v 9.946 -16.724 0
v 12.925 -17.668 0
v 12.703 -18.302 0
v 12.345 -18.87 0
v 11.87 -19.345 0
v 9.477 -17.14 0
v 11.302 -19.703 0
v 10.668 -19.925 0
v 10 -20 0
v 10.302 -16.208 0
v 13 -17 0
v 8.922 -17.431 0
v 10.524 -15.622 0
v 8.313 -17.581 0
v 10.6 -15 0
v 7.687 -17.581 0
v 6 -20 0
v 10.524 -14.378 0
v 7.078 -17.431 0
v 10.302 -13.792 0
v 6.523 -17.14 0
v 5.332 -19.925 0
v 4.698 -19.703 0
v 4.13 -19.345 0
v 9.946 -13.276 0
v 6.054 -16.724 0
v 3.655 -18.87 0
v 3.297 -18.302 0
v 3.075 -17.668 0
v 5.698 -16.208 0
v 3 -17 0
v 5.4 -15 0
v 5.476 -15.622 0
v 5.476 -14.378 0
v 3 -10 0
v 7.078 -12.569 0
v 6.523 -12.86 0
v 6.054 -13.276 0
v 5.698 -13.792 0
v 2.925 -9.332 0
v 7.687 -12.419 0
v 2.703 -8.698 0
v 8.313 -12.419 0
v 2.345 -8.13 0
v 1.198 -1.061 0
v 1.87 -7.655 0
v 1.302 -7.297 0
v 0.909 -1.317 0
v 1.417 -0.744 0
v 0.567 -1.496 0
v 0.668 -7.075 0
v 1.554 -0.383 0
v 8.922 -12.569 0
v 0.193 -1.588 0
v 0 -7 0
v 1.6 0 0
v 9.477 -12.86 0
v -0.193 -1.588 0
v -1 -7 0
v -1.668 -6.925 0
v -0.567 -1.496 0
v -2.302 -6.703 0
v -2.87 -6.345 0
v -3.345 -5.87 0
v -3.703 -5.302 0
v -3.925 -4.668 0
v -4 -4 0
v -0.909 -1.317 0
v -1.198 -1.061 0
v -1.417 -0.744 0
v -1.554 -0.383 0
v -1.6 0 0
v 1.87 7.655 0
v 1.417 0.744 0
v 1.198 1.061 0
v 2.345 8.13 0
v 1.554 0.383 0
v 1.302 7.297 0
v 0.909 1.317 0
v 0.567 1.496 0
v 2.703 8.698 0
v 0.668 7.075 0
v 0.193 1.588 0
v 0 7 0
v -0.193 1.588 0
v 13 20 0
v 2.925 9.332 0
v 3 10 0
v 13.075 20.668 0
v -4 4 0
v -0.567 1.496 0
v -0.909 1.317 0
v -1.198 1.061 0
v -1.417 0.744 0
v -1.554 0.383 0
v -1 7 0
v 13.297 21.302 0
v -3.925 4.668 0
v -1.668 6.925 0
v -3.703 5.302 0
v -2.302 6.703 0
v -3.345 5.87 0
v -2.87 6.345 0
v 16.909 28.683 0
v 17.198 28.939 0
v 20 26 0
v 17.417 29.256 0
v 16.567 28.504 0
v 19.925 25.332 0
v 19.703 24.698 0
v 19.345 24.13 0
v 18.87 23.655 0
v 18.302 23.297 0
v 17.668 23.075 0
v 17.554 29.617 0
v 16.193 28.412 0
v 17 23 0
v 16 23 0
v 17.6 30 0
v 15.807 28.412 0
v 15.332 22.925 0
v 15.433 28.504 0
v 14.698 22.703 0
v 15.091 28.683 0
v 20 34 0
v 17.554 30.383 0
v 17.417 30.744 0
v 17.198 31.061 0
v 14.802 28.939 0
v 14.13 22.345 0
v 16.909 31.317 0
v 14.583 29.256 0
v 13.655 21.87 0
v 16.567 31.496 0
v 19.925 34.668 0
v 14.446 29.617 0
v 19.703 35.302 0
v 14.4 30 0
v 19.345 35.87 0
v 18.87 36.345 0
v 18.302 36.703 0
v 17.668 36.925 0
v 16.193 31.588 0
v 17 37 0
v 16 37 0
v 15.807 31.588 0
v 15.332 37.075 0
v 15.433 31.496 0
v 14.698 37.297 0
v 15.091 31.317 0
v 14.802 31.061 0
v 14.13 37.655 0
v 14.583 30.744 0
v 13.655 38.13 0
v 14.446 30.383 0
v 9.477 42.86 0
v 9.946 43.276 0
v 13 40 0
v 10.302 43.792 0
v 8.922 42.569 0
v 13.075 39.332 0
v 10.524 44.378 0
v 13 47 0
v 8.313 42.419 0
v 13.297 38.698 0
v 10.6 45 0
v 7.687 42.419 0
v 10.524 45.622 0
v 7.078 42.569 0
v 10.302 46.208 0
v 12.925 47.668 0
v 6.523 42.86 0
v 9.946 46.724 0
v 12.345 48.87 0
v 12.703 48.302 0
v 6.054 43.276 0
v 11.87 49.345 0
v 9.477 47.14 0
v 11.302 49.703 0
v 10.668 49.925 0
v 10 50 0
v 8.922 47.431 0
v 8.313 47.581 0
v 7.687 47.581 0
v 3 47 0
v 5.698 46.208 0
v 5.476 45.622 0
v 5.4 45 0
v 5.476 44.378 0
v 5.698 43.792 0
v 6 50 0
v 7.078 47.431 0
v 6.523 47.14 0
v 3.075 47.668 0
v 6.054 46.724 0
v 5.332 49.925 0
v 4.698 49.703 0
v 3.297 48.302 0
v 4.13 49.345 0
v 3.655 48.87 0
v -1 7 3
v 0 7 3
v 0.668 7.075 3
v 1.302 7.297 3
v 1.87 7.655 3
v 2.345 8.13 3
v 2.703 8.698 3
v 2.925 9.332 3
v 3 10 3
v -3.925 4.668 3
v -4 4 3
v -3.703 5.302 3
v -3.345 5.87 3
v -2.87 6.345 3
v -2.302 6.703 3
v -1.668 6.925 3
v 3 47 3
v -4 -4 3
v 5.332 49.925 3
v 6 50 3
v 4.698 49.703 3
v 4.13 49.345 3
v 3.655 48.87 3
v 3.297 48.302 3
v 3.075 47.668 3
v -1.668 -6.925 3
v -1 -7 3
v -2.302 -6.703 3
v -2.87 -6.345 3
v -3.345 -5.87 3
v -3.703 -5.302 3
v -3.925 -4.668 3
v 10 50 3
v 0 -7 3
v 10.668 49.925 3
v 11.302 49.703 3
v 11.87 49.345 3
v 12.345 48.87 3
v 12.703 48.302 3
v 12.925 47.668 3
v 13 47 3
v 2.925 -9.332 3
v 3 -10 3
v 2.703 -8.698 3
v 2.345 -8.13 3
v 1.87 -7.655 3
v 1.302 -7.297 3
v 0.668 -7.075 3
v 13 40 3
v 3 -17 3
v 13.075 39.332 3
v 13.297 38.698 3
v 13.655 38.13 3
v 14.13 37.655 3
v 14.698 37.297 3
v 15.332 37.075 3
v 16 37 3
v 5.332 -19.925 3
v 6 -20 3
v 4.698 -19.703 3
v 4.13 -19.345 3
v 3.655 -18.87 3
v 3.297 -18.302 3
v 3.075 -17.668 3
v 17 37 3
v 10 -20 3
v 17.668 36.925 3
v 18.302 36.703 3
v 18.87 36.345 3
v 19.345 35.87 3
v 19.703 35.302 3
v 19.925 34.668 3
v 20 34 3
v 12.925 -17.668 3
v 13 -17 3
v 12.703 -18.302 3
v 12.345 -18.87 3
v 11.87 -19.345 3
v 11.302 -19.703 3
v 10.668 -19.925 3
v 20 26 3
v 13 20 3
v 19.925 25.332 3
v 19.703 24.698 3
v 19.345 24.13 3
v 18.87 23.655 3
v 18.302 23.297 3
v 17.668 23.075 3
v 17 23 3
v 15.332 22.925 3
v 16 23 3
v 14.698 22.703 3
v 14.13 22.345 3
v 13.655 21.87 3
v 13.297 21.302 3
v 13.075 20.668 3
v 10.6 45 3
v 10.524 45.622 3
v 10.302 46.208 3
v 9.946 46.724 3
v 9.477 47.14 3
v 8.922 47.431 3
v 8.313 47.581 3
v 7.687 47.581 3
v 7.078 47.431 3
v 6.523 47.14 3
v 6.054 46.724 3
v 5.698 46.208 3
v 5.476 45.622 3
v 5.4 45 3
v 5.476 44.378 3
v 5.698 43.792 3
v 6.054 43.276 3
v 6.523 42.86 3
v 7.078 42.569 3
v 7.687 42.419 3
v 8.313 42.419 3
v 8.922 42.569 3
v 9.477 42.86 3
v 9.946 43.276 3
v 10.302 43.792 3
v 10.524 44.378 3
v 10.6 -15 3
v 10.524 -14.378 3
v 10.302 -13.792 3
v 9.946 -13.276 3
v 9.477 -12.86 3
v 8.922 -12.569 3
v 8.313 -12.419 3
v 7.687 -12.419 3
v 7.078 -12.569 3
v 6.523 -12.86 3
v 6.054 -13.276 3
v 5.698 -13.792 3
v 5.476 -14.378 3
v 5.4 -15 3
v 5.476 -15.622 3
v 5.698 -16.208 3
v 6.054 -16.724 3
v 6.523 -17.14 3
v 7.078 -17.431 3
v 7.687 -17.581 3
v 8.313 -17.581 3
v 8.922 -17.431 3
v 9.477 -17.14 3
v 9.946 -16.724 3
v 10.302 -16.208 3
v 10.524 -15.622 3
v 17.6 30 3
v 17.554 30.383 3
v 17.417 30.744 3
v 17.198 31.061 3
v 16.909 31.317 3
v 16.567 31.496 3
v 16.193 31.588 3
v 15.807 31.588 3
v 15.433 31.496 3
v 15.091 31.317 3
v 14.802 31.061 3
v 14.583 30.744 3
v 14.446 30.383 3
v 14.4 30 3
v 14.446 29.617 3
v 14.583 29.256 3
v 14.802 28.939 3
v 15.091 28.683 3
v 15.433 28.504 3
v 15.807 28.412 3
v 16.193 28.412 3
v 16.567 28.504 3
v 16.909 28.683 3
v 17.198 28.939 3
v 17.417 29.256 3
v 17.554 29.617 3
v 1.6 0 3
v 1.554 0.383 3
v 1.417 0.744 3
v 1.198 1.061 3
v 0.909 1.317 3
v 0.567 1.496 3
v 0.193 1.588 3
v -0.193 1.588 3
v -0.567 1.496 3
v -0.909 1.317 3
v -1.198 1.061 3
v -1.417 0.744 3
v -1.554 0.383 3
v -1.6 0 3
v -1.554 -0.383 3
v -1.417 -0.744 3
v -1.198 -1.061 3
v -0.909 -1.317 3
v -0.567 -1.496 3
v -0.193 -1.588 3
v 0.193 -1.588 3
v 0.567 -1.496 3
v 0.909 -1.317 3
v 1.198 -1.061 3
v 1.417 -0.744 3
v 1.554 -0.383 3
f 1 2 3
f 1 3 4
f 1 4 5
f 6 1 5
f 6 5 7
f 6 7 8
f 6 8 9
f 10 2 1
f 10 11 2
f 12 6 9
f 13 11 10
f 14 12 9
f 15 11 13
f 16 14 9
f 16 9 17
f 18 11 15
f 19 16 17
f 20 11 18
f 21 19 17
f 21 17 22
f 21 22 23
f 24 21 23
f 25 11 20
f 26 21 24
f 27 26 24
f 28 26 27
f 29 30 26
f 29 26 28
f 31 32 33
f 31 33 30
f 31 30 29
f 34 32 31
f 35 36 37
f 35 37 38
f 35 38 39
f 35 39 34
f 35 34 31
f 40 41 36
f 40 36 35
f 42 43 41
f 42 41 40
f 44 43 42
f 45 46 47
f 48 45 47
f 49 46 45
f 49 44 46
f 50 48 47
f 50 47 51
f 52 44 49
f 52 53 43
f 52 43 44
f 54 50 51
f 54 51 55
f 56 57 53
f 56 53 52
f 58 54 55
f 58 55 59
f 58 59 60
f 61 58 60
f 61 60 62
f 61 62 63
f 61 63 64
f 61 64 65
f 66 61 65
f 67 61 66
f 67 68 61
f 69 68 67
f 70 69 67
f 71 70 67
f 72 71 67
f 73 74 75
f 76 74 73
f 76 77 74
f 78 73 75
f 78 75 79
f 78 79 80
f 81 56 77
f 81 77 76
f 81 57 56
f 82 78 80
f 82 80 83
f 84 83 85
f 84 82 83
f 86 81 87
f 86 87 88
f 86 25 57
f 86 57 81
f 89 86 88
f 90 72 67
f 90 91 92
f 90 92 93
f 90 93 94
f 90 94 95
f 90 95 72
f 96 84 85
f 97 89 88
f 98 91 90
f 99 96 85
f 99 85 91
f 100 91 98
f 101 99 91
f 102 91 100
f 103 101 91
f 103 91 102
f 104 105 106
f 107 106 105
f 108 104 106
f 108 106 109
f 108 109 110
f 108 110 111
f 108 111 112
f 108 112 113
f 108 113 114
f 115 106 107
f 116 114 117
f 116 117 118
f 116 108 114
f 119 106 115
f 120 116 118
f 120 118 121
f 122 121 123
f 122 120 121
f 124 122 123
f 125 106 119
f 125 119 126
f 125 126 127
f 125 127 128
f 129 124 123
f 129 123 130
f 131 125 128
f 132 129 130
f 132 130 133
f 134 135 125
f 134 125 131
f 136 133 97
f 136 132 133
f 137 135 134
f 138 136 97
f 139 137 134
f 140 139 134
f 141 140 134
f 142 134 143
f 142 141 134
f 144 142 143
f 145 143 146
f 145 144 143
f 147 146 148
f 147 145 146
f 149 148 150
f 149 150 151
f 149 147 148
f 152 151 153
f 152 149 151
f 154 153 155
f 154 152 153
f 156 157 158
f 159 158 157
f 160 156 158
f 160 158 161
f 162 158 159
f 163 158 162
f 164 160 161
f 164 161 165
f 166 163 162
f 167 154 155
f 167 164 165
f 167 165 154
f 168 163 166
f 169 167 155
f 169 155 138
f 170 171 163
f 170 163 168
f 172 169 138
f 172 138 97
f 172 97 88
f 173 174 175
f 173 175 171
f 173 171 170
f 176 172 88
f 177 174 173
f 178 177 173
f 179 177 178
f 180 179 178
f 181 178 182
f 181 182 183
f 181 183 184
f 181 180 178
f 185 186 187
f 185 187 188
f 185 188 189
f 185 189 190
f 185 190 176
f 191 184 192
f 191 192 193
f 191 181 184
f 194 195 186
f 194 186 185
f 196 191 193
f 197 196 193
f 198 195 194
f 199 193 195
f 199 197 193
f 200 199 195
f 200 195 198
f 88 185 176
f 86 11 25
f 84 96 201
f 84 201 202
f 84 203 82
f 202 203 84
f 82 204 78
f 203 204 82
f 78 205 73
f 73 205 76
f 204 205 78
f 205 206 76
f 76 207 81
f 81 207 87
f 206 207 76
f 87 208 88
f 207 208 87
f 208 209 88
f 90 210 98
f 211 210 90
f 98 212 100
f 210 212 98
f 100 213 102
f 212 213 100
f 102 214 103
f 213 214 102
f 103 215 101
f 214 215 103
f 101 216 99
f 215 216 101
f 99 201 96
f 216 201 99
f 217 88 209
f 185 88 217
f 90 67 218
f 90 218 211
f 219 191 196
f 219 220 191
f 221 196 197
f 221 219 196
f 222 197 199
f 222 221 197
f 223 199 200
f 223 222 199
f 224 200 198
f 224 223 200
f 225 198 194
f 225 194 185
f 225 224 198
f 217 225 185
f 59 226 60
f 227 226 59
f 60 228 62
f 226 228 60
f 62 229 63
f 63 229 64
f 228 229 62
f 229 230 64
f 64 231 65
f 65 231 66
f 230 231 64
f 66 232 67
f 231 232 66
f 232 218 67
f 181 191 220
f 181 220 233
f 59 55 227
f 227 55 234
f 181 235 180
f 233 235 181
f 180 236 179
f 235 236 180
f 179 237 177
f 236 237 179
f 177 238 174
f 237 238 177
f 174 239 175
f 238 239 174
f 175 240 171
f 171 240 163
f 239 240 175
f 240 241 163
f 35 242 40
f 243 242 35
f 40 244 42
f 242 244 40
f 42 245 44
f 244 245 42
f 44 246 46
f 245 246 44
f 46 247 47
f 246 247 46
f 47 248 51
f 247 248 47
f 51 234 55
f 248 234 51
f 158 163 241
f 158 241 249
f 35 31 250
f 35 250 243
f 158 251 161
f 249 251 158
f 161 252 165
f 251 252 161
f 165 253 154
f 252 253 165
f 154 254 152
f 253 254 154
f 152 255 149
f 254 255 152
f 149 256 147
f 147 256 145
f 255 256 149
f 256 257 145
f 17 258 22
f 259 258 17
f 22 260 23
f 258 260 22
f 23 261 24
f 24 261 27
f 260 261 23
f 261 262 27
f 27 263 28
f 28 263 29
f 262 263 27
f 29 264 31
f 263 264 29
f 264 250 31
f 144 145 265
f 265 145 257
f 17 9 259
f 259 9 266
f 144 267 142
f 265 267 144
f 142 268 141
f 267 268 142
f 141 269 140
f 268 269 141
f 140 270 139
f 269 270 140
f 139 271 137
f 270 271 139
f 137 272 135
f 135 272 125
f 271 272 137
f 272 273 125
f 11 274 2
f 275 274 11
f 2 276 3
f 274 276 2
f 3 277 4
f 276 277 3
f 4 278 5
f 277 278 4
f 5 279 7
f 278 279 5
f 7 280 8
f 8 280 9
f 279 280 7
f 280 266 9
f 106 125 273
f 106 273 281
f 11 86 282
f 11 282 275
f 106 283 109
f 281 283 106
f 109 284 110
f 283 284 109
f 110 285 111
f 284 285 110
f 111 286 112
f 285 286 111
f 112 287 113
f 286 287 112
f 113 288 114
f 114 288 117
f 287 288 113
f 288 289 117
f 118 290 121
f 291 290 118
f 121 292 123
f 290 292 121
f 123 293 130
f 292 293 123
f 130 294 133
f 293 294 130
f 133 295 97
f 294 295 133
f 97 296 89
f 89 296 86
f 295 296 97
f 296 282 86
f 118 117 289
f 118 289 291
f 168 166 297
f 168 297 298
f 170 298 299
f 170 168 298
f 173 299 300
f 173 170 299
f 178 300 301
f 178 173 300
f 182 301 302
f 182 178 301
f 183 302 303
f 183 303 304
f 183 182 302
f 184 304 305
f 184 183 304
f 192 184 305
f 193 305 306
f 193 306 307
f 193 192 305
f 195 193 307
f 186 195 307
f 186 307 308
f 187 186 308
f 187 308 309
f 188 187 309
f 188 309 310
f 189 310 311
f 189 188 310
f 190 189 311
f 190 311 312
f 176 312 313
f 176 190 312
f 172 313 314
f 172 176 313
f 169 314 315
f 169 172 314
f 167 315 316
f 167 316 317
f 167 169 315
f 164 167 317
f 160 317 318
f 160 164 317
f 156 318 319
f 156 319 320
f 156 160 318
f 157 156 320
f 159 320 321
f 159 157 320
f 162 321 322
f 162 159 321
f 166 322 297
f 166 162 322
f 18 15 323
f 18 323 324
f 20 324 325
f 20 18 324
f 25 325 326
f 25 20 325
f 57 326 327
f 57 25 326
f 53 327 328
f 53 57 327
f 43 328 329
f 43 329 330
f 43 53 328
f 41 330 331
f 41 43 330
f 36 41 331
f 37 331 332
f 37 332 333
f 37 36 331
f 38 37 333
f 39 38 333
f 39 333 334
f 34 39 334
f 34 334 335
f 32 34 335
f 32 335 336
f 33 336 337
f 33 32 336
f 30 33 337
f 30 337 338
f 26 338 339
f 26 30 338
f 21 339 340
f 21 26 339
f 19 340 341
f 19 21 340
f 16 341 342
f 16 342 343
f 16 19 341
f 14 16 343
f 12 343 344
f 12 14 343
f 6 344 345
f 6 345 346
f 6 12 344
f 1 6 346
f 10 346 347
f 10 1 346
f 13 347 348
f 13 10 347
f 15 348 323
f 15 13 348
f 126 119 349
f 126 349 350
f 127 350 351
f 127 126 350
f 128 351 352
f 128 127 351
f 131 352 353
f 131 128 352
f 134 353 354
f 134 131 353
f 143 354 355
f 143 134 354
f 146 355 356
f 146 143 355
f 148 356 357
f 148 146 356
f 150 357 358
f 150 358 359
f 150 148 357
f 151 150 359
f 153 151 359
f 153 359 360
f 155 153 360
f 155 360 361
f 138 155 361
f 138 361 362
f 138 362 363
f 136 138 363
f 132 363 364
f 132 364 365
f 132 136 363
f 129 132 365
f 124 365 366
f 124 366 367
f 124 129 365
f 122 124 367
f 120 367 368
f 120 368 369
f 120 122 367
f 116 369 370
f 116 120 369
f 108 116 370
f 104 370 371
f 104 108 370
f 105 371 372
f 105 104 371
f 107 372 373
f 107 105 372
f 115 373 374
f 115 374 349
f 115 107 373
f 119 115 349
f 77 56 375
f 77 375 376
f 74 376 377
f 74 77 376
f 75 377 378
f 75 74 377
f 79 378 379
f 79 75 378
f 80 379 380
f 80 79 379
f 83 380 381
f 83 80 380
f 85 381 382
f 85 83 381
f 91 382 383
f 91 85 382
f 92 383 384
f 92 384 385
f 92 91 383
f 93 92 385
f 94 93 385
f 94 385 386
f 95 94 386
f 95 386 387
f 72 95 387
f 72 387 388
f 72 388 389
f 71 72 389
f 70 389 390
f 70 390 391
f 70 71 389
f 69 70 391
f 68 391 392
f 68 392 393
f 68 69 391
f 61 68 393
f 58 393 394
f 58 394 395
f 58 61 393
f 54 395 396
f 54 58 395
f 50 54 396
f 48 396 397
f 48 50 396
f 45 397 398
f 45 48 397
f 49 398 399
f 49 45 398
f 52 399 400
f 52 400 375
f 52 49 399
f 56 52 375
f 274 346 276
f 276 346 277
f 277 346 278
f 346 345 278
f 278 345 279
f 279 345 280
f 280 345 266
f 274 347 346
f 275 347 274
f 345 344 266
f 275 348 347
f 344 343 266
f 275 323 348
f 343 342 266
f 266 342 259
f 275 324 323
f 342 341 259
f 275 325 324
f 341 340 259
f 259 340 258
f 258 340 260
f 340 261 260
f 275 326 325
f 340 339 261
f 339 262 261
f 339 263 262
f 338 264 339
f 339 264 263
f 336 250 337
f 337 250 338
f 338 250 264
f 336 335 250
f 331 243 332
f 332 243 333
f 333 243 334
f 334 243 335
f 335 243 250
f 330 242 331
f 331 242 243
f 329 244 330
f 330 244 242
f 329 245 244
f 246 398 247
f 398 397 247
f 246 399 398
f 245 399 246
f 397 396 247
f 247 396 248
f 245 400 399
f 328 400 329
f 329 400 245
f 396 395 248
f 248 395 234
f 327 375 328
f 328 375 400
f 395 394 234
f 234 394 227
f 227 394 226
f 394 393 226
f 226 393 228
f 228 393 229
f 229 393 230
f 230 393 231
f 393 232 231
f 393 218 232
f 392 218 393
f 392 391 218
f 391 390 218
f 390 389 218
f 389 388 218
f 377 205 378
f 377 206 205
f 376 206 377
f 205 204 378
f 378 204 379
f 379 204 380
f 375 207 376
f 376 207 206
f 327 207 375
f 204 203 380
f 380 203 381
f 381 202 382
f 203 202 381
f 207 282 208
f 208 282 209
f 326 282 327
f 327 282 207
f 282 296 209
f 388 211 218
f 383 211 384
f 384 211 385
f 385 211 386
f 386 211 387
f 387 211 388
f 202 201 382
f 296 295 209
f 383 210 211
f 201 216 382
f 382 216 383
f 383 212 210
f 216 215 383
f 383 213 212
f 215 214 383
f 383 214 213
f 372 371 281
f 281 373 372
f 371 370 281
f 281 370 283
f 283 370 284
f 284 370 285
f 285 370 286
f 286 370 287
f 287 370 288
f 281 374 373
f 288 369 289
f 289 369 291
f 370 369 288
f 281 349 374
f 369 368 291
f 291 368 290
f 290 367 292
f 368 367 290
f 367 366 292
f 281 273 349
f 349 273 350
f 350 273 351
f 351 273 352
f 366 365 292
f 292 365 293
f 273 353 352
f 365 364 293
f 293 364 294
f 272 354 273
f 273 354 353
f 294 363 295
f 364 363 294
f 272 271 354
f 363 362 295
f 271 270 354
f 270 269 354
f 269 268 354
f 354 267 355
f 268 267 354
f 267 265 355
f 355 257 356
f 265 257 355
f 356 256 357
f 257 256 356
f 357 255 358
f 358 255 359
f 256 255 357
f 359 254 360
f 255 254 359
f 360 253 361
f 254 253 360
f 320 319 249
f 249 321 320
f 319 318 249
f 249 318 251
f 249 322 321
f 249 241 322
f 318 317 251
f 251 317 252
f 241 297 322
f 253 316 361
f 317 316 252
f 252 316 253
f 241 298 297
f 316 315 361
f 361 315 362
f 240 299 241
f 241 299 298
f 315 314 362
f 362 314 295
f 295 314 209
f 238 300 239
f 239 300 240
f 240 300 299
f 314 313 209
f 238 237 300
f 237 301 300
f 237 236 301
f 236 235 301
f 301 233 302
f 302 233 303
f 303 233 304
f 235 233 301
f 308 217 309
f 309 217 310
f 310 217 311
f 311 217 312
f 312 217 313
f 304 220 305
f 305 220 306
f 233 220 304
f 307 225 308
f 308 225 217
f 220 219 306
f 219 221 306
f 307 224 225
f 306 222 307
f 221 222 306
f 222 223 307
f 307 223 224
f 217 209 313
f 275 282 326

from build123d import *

# Parameters (mm, degrees)
SKETCH_R    = 1.6
SKETCH_R_2  = 2.6
PAD_DEPTH   = 3
FILLET_R    = 3
FILLET001_R = 3
FILLET002_R = 3
FILLET003_R = 3
FILLET004_R = 3


with BuildPart() as part:
    # Sketch → Pad (new body)
    with BuildSketch(Plane.XY):
        Polygon((3, 50), (13, 50), (13, 37), (20, 37), (20, 23), (13, 23), (13, -20), (3, -20), (3, -7), (-4, -7), (-4, 7), (3, 7), align=None)
        Circle(SKETCH_R, mode=Mode.SUBTRACT)
        with Locations((16, 30)):
            Circle(SKETCH_R, mode=Mode.SUBTRACT)
        with Locations((8, 45)):
            Circle(SKETCH_R_2, mode=Mode.SUBTRACT)
        with Locations((8, -15)):
            Circle(SKETCH_R_2, mode=Mode.SUBTRACT)
    extrude(amount=PAD_DEPTH)

    # Fillet
    fillet_edges = [part.edges().sort_by_distance(p)[0] for p in [
        (13, -20, 1.5),
        (3, -20, 1.5),
        (20, 23, 1.5),
        (20, 37, 1.5),
        (-4, -7, 1.5),
        (-4, 7, 1.5),
        (3, 50, 1.5),
        (13, 50, 1.5),
    ]]
    fillet(fillet_edges, radius=FILLET_R)

    # Fillet001
    fillet001_edges = [part.edges().sort_by_distance(p)[0] for p in [
        (13, 37, 1.5),
    ]]
    fillet(fillet001_edges, radius=FILLET001_R)

    # Fillet002
    fillet002_edges = [part.edges().sort_by_distance(p)[0] for p in [
        (13, 23, 1.5),
    ]]
    fillet(fillet002_edges, radius=FILLET002_R)

    # Fillet003
    fillet003_edges = [part.edges().sort_by_distance(p)[0] for p in [
        (3, -7, 1.5),
    ]]
    fillet(fillet003_edges, radius=FILLET003_R)

    # Fillet004
    fillet004_edges = [part.edges().sort_by_distance(p)[0] for p in [
        (3, 7, 1.5),
    ]]
    fillet(fillet004_edges, radius=FILLET004_R)


solid = part.part
